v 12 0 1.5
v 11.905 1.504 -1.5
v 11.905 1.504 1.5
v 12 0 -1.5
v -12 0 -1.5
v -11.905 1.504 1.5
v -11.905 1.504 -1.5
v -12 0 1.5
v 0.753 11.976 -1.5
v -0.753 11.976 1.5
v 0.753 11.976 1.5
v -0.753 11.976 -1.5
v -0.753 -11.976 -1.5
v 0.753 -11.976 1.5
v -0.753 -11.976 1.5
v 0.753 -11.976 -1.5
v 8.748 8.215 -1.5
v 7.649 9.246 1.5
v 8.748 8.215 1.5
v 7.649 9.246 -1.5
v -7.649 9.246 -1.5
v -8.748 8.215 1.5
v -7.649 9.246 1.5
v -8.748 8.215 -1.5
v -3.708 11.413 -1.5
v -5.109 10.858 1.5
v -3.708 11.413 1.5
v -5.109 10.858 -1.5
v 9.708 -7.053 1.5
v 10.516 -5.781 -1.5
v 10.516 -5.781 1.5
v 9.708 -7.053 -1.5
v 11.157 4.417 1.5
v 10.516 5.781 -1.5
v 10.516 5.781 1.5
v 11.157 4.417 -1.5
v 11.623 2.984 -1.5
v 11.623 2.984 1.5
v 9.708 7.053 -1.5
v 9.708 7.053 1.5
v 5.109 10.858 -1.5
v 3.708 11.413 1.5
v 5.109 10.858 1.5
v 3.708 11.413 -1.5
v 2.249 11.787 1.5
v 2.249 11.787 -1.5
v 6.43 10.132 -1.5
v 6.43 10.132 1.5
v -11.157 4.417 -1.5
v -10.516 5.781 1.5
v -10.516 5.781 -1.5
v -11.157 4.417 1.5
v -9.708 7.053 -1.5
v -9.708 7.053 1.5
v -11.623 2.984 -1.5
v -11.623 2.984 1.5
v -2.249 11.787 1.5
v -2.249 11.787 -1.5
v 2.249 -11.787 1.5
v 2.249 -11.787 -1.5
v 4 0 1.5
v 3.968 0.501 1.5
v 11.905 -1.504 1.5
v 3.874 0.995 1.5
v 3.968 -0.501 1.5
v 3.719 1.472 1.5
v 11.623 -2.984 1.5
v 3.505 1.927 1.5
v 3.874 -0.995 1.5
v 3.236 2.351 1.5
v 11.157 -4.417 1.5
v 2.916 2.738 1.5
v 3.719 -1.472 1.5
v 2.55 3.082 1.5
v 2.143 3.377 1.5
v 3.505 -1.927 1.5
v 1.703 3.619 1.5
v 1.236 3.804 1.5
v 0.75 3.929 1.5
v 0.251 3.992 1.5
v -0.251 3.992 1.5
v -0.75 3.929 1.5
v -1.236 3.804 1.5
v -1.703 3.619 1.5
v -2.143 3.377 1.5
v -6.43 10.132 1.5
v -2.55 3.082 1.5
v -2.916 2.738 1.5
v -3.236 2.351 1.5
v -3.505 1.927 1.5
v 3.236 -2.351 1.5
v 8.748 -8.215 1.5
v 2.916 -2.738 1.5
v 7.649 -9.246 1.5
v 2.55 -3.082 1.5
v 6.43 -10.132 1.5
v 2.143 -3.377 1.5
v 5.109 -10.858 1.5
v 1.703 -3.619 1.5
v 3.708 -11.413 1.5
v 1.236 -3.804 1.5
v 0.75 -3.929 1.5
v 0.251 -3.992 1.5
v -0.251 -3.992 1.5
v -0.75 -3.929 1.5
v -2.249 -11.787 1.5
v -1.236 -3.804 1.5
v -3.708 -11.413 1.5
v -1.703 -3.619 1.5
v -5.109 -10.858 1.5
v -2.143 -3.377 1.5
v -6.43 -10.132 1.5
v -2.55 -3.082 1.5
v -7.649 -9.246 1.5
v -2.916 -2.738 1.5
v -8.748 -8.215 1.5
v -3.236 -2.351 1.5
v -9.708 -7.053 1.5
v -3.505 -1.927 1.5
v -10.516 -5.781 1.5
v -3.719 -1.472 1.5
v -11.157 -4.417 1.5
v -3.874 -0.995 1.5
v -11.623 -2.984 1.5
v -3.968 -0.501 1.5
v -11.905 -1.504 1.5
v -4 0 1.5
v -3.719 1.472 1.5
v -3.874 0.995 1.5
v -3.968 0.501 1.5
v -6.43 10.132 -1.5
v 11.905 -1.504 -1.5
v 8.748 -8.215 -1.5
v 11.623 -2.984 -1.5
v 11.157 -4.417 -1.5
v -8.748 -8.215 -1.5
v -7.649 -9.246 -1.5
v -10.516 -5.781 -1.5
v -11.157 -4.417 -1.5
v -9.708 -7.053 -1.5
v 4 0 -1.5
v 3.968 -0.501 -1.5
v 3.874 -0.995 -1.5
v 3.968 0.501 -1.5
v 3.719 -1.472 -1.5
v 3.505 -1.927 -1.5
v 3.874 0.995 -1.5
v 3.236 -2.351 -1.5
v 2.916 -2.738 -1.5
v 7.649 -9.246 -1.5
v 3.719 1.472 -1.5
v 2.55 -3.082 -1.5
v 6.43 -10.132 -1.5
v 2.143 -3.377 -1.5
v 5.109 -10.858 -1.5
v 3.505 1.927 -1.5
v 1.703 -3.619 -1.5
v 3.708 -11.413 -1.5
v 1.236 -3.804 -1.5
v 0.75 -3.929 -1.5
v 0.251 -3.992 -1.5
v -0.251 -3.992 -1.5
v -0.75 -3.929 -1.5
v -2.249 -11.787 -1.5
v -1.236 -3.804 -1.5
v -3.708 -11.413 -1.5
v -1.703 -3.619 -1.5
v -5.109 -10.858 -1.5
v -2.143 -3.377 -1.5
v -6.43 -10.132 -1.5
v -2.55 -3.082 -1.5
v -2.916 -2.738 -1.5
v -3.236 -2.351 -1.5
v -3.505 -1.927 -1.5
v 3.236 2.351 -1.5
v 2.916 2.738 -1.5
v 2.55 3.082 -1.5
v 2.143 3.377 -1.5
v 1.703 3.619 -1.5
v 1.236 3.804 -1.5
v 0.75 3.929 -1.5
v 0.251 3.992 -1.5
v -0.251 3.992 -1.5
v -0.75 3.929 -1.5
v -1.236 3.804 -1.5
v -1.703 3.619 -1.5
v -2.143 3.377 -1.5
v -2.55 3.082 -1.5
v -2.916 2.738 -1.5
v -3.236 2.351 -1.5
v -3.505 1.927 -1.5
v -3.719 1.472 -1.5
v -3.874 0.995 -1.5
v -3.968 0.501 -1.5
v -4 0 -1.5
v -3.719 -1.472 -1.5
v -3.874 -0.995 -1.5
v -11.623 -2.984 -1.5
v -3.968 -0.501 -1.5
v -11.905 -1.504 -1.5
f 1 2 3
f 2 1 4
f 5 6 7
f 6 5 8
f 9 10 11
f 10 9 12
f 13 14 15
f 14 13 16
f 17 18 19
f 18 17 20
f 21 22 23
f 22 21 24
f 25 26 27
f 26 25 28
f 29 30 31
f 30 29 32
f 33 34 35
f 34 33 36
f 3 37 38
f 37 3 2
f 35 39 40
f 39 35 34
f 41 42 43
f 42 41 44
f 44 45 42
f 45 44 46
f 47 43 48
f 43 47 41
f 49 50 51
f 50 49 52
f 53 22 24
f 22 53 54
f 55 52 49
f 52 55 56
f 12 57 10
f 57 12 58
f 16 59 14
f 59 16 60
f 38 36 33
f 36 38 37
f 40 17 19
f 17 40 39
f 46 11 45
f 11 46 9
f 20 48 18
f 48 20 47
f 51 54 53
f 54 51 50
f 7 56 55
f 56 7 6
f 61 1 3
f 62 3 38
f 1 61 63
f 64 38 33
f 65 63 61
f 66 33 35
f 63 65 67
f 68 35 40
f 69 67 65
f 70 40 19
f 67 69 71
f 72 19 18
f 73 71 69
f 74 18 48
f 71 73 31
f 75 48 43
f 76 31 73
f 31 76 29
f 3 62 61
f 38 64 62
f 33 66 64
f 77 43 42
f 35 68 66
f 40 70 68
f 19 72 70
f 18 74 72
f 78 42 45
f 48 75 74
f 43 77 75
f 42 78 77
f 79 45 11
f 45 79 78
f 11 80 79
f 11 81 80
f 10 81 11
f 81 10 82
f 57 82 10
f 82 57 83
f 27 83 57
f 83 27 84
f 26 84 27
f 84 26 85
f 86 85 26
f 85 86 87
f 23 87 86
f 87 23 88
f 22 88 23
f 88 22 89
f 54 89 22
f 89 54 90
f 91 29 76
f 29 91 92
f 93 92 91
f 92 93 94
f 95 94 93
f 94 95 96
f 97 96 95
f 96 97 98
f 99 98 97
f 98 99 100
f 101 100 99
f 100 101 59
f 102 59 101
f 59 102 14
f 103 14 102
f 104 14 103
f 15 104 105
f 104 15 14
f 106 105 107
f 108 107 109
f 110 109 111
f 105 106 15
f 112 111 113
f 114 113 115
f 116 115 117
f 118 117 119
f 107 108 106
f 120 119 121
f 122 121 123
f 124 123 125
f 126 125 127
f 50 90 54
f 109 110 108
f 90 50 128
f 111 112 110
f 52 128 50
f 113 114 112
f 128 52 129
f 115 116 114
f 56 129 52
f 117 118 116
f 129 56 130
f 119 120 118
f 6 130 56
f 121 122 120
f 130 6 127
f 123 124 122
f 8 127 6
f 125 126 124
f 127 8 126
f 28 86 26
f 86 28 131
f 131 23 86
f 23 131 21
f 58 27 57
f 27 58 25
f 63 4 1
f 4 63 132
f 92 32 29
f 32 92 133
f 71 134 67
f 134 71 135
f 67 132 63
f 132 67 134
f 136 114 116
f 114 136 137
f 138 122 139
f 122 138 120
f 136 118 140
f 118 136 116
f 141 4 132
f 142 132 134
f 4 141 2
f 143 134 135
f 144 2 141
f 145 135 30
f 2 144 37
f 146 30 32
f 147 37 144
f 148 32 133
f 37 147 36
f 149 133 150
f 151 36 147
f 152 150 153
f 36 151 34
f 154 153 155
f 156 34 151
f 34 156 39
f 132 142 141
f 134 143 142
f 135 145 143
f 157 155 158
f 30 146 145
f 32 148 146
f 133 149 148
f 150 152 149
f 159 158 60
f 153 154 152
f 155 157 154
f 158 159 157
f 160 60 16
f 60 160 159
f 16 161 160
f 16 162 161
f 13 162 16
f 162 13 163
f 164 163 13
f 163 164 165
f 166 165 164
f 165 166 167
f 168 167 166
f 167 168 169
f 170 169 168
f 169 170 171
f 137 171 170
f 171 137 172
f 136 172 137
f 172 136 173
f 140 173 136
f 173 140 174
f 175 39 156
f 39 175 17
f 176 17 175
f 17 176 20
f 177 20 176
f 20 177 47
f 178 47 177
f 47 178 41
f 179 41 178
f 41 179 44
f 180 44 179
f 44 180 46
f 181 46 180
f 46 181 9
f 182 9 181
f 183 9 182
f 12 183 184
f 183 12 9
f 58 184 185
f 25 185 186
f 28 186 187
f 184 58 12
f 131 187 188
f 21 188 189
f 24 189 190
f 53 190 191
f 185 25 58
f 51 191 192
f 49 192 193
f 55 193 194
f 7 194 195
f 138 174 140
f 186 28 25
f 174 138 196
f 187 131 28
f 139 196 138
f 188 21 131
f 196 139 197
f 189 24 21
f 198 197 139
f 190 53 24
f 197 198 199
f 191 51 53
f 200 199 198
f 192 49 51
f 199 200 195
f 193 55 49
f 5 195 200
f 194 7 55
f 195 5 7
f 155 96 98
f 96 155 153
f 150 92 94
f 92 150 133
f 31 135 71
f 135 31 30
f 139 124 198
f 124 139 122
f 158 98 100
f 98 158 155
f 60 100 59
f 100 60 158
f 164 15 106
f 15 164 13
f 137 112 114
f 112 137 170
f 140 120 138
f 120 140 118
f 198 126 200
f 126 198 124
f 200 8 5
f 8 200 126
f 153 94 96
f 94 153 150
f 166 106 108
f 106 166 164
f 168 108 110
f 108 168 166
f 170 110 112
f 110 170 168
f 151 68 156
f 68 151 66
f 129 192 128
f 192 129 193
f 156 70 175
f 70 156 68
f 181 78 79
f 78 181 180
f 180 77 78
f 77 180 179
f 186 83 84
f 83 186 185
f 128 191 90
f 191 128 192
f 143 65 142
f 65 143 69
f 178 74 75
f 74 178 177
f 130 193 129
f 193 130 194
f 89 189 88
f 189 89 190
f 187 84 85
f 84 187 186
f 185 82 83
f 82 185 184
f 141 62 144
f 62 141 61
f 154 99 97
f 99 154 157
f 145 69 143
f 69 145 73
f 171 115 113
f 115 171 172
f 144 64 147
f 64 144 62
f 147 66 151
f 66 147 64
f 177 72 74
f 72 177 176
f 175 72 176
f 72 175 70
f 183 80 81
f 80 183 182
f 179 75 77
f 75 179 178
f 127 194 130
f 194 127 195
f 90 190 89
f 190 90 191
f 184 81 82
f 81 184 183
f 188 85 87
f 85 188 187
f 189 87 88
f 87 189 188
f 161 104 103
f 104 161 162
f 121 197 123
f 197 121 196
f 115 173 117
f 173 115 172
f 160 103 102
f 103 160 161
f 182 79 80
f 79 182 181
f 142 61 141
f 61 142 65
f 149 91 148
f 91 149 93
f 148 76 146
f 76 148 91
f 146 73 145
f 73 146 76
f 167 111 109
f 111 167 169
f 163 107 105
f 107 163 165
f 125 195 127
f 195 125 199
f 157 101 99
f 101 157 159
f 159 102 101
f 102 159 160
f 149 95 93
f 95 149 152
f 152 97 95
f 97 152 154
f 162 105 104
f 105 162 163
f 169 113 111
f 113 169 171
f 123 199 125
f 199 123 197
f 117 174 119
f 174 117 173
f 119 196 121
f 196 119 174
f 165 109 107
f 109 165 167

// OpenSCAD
$fn = 50;


difference() {
	union() {
		translate(v = [0, 0, -1.5000000000]) {
			cylinder(h = 3, r = 12.0000000000);
		}
	}
	union() {
		translate(v = [0, 0, -100.0000000000]) {
			cylinder(h = 200, r = 4);
		}
	}
}
